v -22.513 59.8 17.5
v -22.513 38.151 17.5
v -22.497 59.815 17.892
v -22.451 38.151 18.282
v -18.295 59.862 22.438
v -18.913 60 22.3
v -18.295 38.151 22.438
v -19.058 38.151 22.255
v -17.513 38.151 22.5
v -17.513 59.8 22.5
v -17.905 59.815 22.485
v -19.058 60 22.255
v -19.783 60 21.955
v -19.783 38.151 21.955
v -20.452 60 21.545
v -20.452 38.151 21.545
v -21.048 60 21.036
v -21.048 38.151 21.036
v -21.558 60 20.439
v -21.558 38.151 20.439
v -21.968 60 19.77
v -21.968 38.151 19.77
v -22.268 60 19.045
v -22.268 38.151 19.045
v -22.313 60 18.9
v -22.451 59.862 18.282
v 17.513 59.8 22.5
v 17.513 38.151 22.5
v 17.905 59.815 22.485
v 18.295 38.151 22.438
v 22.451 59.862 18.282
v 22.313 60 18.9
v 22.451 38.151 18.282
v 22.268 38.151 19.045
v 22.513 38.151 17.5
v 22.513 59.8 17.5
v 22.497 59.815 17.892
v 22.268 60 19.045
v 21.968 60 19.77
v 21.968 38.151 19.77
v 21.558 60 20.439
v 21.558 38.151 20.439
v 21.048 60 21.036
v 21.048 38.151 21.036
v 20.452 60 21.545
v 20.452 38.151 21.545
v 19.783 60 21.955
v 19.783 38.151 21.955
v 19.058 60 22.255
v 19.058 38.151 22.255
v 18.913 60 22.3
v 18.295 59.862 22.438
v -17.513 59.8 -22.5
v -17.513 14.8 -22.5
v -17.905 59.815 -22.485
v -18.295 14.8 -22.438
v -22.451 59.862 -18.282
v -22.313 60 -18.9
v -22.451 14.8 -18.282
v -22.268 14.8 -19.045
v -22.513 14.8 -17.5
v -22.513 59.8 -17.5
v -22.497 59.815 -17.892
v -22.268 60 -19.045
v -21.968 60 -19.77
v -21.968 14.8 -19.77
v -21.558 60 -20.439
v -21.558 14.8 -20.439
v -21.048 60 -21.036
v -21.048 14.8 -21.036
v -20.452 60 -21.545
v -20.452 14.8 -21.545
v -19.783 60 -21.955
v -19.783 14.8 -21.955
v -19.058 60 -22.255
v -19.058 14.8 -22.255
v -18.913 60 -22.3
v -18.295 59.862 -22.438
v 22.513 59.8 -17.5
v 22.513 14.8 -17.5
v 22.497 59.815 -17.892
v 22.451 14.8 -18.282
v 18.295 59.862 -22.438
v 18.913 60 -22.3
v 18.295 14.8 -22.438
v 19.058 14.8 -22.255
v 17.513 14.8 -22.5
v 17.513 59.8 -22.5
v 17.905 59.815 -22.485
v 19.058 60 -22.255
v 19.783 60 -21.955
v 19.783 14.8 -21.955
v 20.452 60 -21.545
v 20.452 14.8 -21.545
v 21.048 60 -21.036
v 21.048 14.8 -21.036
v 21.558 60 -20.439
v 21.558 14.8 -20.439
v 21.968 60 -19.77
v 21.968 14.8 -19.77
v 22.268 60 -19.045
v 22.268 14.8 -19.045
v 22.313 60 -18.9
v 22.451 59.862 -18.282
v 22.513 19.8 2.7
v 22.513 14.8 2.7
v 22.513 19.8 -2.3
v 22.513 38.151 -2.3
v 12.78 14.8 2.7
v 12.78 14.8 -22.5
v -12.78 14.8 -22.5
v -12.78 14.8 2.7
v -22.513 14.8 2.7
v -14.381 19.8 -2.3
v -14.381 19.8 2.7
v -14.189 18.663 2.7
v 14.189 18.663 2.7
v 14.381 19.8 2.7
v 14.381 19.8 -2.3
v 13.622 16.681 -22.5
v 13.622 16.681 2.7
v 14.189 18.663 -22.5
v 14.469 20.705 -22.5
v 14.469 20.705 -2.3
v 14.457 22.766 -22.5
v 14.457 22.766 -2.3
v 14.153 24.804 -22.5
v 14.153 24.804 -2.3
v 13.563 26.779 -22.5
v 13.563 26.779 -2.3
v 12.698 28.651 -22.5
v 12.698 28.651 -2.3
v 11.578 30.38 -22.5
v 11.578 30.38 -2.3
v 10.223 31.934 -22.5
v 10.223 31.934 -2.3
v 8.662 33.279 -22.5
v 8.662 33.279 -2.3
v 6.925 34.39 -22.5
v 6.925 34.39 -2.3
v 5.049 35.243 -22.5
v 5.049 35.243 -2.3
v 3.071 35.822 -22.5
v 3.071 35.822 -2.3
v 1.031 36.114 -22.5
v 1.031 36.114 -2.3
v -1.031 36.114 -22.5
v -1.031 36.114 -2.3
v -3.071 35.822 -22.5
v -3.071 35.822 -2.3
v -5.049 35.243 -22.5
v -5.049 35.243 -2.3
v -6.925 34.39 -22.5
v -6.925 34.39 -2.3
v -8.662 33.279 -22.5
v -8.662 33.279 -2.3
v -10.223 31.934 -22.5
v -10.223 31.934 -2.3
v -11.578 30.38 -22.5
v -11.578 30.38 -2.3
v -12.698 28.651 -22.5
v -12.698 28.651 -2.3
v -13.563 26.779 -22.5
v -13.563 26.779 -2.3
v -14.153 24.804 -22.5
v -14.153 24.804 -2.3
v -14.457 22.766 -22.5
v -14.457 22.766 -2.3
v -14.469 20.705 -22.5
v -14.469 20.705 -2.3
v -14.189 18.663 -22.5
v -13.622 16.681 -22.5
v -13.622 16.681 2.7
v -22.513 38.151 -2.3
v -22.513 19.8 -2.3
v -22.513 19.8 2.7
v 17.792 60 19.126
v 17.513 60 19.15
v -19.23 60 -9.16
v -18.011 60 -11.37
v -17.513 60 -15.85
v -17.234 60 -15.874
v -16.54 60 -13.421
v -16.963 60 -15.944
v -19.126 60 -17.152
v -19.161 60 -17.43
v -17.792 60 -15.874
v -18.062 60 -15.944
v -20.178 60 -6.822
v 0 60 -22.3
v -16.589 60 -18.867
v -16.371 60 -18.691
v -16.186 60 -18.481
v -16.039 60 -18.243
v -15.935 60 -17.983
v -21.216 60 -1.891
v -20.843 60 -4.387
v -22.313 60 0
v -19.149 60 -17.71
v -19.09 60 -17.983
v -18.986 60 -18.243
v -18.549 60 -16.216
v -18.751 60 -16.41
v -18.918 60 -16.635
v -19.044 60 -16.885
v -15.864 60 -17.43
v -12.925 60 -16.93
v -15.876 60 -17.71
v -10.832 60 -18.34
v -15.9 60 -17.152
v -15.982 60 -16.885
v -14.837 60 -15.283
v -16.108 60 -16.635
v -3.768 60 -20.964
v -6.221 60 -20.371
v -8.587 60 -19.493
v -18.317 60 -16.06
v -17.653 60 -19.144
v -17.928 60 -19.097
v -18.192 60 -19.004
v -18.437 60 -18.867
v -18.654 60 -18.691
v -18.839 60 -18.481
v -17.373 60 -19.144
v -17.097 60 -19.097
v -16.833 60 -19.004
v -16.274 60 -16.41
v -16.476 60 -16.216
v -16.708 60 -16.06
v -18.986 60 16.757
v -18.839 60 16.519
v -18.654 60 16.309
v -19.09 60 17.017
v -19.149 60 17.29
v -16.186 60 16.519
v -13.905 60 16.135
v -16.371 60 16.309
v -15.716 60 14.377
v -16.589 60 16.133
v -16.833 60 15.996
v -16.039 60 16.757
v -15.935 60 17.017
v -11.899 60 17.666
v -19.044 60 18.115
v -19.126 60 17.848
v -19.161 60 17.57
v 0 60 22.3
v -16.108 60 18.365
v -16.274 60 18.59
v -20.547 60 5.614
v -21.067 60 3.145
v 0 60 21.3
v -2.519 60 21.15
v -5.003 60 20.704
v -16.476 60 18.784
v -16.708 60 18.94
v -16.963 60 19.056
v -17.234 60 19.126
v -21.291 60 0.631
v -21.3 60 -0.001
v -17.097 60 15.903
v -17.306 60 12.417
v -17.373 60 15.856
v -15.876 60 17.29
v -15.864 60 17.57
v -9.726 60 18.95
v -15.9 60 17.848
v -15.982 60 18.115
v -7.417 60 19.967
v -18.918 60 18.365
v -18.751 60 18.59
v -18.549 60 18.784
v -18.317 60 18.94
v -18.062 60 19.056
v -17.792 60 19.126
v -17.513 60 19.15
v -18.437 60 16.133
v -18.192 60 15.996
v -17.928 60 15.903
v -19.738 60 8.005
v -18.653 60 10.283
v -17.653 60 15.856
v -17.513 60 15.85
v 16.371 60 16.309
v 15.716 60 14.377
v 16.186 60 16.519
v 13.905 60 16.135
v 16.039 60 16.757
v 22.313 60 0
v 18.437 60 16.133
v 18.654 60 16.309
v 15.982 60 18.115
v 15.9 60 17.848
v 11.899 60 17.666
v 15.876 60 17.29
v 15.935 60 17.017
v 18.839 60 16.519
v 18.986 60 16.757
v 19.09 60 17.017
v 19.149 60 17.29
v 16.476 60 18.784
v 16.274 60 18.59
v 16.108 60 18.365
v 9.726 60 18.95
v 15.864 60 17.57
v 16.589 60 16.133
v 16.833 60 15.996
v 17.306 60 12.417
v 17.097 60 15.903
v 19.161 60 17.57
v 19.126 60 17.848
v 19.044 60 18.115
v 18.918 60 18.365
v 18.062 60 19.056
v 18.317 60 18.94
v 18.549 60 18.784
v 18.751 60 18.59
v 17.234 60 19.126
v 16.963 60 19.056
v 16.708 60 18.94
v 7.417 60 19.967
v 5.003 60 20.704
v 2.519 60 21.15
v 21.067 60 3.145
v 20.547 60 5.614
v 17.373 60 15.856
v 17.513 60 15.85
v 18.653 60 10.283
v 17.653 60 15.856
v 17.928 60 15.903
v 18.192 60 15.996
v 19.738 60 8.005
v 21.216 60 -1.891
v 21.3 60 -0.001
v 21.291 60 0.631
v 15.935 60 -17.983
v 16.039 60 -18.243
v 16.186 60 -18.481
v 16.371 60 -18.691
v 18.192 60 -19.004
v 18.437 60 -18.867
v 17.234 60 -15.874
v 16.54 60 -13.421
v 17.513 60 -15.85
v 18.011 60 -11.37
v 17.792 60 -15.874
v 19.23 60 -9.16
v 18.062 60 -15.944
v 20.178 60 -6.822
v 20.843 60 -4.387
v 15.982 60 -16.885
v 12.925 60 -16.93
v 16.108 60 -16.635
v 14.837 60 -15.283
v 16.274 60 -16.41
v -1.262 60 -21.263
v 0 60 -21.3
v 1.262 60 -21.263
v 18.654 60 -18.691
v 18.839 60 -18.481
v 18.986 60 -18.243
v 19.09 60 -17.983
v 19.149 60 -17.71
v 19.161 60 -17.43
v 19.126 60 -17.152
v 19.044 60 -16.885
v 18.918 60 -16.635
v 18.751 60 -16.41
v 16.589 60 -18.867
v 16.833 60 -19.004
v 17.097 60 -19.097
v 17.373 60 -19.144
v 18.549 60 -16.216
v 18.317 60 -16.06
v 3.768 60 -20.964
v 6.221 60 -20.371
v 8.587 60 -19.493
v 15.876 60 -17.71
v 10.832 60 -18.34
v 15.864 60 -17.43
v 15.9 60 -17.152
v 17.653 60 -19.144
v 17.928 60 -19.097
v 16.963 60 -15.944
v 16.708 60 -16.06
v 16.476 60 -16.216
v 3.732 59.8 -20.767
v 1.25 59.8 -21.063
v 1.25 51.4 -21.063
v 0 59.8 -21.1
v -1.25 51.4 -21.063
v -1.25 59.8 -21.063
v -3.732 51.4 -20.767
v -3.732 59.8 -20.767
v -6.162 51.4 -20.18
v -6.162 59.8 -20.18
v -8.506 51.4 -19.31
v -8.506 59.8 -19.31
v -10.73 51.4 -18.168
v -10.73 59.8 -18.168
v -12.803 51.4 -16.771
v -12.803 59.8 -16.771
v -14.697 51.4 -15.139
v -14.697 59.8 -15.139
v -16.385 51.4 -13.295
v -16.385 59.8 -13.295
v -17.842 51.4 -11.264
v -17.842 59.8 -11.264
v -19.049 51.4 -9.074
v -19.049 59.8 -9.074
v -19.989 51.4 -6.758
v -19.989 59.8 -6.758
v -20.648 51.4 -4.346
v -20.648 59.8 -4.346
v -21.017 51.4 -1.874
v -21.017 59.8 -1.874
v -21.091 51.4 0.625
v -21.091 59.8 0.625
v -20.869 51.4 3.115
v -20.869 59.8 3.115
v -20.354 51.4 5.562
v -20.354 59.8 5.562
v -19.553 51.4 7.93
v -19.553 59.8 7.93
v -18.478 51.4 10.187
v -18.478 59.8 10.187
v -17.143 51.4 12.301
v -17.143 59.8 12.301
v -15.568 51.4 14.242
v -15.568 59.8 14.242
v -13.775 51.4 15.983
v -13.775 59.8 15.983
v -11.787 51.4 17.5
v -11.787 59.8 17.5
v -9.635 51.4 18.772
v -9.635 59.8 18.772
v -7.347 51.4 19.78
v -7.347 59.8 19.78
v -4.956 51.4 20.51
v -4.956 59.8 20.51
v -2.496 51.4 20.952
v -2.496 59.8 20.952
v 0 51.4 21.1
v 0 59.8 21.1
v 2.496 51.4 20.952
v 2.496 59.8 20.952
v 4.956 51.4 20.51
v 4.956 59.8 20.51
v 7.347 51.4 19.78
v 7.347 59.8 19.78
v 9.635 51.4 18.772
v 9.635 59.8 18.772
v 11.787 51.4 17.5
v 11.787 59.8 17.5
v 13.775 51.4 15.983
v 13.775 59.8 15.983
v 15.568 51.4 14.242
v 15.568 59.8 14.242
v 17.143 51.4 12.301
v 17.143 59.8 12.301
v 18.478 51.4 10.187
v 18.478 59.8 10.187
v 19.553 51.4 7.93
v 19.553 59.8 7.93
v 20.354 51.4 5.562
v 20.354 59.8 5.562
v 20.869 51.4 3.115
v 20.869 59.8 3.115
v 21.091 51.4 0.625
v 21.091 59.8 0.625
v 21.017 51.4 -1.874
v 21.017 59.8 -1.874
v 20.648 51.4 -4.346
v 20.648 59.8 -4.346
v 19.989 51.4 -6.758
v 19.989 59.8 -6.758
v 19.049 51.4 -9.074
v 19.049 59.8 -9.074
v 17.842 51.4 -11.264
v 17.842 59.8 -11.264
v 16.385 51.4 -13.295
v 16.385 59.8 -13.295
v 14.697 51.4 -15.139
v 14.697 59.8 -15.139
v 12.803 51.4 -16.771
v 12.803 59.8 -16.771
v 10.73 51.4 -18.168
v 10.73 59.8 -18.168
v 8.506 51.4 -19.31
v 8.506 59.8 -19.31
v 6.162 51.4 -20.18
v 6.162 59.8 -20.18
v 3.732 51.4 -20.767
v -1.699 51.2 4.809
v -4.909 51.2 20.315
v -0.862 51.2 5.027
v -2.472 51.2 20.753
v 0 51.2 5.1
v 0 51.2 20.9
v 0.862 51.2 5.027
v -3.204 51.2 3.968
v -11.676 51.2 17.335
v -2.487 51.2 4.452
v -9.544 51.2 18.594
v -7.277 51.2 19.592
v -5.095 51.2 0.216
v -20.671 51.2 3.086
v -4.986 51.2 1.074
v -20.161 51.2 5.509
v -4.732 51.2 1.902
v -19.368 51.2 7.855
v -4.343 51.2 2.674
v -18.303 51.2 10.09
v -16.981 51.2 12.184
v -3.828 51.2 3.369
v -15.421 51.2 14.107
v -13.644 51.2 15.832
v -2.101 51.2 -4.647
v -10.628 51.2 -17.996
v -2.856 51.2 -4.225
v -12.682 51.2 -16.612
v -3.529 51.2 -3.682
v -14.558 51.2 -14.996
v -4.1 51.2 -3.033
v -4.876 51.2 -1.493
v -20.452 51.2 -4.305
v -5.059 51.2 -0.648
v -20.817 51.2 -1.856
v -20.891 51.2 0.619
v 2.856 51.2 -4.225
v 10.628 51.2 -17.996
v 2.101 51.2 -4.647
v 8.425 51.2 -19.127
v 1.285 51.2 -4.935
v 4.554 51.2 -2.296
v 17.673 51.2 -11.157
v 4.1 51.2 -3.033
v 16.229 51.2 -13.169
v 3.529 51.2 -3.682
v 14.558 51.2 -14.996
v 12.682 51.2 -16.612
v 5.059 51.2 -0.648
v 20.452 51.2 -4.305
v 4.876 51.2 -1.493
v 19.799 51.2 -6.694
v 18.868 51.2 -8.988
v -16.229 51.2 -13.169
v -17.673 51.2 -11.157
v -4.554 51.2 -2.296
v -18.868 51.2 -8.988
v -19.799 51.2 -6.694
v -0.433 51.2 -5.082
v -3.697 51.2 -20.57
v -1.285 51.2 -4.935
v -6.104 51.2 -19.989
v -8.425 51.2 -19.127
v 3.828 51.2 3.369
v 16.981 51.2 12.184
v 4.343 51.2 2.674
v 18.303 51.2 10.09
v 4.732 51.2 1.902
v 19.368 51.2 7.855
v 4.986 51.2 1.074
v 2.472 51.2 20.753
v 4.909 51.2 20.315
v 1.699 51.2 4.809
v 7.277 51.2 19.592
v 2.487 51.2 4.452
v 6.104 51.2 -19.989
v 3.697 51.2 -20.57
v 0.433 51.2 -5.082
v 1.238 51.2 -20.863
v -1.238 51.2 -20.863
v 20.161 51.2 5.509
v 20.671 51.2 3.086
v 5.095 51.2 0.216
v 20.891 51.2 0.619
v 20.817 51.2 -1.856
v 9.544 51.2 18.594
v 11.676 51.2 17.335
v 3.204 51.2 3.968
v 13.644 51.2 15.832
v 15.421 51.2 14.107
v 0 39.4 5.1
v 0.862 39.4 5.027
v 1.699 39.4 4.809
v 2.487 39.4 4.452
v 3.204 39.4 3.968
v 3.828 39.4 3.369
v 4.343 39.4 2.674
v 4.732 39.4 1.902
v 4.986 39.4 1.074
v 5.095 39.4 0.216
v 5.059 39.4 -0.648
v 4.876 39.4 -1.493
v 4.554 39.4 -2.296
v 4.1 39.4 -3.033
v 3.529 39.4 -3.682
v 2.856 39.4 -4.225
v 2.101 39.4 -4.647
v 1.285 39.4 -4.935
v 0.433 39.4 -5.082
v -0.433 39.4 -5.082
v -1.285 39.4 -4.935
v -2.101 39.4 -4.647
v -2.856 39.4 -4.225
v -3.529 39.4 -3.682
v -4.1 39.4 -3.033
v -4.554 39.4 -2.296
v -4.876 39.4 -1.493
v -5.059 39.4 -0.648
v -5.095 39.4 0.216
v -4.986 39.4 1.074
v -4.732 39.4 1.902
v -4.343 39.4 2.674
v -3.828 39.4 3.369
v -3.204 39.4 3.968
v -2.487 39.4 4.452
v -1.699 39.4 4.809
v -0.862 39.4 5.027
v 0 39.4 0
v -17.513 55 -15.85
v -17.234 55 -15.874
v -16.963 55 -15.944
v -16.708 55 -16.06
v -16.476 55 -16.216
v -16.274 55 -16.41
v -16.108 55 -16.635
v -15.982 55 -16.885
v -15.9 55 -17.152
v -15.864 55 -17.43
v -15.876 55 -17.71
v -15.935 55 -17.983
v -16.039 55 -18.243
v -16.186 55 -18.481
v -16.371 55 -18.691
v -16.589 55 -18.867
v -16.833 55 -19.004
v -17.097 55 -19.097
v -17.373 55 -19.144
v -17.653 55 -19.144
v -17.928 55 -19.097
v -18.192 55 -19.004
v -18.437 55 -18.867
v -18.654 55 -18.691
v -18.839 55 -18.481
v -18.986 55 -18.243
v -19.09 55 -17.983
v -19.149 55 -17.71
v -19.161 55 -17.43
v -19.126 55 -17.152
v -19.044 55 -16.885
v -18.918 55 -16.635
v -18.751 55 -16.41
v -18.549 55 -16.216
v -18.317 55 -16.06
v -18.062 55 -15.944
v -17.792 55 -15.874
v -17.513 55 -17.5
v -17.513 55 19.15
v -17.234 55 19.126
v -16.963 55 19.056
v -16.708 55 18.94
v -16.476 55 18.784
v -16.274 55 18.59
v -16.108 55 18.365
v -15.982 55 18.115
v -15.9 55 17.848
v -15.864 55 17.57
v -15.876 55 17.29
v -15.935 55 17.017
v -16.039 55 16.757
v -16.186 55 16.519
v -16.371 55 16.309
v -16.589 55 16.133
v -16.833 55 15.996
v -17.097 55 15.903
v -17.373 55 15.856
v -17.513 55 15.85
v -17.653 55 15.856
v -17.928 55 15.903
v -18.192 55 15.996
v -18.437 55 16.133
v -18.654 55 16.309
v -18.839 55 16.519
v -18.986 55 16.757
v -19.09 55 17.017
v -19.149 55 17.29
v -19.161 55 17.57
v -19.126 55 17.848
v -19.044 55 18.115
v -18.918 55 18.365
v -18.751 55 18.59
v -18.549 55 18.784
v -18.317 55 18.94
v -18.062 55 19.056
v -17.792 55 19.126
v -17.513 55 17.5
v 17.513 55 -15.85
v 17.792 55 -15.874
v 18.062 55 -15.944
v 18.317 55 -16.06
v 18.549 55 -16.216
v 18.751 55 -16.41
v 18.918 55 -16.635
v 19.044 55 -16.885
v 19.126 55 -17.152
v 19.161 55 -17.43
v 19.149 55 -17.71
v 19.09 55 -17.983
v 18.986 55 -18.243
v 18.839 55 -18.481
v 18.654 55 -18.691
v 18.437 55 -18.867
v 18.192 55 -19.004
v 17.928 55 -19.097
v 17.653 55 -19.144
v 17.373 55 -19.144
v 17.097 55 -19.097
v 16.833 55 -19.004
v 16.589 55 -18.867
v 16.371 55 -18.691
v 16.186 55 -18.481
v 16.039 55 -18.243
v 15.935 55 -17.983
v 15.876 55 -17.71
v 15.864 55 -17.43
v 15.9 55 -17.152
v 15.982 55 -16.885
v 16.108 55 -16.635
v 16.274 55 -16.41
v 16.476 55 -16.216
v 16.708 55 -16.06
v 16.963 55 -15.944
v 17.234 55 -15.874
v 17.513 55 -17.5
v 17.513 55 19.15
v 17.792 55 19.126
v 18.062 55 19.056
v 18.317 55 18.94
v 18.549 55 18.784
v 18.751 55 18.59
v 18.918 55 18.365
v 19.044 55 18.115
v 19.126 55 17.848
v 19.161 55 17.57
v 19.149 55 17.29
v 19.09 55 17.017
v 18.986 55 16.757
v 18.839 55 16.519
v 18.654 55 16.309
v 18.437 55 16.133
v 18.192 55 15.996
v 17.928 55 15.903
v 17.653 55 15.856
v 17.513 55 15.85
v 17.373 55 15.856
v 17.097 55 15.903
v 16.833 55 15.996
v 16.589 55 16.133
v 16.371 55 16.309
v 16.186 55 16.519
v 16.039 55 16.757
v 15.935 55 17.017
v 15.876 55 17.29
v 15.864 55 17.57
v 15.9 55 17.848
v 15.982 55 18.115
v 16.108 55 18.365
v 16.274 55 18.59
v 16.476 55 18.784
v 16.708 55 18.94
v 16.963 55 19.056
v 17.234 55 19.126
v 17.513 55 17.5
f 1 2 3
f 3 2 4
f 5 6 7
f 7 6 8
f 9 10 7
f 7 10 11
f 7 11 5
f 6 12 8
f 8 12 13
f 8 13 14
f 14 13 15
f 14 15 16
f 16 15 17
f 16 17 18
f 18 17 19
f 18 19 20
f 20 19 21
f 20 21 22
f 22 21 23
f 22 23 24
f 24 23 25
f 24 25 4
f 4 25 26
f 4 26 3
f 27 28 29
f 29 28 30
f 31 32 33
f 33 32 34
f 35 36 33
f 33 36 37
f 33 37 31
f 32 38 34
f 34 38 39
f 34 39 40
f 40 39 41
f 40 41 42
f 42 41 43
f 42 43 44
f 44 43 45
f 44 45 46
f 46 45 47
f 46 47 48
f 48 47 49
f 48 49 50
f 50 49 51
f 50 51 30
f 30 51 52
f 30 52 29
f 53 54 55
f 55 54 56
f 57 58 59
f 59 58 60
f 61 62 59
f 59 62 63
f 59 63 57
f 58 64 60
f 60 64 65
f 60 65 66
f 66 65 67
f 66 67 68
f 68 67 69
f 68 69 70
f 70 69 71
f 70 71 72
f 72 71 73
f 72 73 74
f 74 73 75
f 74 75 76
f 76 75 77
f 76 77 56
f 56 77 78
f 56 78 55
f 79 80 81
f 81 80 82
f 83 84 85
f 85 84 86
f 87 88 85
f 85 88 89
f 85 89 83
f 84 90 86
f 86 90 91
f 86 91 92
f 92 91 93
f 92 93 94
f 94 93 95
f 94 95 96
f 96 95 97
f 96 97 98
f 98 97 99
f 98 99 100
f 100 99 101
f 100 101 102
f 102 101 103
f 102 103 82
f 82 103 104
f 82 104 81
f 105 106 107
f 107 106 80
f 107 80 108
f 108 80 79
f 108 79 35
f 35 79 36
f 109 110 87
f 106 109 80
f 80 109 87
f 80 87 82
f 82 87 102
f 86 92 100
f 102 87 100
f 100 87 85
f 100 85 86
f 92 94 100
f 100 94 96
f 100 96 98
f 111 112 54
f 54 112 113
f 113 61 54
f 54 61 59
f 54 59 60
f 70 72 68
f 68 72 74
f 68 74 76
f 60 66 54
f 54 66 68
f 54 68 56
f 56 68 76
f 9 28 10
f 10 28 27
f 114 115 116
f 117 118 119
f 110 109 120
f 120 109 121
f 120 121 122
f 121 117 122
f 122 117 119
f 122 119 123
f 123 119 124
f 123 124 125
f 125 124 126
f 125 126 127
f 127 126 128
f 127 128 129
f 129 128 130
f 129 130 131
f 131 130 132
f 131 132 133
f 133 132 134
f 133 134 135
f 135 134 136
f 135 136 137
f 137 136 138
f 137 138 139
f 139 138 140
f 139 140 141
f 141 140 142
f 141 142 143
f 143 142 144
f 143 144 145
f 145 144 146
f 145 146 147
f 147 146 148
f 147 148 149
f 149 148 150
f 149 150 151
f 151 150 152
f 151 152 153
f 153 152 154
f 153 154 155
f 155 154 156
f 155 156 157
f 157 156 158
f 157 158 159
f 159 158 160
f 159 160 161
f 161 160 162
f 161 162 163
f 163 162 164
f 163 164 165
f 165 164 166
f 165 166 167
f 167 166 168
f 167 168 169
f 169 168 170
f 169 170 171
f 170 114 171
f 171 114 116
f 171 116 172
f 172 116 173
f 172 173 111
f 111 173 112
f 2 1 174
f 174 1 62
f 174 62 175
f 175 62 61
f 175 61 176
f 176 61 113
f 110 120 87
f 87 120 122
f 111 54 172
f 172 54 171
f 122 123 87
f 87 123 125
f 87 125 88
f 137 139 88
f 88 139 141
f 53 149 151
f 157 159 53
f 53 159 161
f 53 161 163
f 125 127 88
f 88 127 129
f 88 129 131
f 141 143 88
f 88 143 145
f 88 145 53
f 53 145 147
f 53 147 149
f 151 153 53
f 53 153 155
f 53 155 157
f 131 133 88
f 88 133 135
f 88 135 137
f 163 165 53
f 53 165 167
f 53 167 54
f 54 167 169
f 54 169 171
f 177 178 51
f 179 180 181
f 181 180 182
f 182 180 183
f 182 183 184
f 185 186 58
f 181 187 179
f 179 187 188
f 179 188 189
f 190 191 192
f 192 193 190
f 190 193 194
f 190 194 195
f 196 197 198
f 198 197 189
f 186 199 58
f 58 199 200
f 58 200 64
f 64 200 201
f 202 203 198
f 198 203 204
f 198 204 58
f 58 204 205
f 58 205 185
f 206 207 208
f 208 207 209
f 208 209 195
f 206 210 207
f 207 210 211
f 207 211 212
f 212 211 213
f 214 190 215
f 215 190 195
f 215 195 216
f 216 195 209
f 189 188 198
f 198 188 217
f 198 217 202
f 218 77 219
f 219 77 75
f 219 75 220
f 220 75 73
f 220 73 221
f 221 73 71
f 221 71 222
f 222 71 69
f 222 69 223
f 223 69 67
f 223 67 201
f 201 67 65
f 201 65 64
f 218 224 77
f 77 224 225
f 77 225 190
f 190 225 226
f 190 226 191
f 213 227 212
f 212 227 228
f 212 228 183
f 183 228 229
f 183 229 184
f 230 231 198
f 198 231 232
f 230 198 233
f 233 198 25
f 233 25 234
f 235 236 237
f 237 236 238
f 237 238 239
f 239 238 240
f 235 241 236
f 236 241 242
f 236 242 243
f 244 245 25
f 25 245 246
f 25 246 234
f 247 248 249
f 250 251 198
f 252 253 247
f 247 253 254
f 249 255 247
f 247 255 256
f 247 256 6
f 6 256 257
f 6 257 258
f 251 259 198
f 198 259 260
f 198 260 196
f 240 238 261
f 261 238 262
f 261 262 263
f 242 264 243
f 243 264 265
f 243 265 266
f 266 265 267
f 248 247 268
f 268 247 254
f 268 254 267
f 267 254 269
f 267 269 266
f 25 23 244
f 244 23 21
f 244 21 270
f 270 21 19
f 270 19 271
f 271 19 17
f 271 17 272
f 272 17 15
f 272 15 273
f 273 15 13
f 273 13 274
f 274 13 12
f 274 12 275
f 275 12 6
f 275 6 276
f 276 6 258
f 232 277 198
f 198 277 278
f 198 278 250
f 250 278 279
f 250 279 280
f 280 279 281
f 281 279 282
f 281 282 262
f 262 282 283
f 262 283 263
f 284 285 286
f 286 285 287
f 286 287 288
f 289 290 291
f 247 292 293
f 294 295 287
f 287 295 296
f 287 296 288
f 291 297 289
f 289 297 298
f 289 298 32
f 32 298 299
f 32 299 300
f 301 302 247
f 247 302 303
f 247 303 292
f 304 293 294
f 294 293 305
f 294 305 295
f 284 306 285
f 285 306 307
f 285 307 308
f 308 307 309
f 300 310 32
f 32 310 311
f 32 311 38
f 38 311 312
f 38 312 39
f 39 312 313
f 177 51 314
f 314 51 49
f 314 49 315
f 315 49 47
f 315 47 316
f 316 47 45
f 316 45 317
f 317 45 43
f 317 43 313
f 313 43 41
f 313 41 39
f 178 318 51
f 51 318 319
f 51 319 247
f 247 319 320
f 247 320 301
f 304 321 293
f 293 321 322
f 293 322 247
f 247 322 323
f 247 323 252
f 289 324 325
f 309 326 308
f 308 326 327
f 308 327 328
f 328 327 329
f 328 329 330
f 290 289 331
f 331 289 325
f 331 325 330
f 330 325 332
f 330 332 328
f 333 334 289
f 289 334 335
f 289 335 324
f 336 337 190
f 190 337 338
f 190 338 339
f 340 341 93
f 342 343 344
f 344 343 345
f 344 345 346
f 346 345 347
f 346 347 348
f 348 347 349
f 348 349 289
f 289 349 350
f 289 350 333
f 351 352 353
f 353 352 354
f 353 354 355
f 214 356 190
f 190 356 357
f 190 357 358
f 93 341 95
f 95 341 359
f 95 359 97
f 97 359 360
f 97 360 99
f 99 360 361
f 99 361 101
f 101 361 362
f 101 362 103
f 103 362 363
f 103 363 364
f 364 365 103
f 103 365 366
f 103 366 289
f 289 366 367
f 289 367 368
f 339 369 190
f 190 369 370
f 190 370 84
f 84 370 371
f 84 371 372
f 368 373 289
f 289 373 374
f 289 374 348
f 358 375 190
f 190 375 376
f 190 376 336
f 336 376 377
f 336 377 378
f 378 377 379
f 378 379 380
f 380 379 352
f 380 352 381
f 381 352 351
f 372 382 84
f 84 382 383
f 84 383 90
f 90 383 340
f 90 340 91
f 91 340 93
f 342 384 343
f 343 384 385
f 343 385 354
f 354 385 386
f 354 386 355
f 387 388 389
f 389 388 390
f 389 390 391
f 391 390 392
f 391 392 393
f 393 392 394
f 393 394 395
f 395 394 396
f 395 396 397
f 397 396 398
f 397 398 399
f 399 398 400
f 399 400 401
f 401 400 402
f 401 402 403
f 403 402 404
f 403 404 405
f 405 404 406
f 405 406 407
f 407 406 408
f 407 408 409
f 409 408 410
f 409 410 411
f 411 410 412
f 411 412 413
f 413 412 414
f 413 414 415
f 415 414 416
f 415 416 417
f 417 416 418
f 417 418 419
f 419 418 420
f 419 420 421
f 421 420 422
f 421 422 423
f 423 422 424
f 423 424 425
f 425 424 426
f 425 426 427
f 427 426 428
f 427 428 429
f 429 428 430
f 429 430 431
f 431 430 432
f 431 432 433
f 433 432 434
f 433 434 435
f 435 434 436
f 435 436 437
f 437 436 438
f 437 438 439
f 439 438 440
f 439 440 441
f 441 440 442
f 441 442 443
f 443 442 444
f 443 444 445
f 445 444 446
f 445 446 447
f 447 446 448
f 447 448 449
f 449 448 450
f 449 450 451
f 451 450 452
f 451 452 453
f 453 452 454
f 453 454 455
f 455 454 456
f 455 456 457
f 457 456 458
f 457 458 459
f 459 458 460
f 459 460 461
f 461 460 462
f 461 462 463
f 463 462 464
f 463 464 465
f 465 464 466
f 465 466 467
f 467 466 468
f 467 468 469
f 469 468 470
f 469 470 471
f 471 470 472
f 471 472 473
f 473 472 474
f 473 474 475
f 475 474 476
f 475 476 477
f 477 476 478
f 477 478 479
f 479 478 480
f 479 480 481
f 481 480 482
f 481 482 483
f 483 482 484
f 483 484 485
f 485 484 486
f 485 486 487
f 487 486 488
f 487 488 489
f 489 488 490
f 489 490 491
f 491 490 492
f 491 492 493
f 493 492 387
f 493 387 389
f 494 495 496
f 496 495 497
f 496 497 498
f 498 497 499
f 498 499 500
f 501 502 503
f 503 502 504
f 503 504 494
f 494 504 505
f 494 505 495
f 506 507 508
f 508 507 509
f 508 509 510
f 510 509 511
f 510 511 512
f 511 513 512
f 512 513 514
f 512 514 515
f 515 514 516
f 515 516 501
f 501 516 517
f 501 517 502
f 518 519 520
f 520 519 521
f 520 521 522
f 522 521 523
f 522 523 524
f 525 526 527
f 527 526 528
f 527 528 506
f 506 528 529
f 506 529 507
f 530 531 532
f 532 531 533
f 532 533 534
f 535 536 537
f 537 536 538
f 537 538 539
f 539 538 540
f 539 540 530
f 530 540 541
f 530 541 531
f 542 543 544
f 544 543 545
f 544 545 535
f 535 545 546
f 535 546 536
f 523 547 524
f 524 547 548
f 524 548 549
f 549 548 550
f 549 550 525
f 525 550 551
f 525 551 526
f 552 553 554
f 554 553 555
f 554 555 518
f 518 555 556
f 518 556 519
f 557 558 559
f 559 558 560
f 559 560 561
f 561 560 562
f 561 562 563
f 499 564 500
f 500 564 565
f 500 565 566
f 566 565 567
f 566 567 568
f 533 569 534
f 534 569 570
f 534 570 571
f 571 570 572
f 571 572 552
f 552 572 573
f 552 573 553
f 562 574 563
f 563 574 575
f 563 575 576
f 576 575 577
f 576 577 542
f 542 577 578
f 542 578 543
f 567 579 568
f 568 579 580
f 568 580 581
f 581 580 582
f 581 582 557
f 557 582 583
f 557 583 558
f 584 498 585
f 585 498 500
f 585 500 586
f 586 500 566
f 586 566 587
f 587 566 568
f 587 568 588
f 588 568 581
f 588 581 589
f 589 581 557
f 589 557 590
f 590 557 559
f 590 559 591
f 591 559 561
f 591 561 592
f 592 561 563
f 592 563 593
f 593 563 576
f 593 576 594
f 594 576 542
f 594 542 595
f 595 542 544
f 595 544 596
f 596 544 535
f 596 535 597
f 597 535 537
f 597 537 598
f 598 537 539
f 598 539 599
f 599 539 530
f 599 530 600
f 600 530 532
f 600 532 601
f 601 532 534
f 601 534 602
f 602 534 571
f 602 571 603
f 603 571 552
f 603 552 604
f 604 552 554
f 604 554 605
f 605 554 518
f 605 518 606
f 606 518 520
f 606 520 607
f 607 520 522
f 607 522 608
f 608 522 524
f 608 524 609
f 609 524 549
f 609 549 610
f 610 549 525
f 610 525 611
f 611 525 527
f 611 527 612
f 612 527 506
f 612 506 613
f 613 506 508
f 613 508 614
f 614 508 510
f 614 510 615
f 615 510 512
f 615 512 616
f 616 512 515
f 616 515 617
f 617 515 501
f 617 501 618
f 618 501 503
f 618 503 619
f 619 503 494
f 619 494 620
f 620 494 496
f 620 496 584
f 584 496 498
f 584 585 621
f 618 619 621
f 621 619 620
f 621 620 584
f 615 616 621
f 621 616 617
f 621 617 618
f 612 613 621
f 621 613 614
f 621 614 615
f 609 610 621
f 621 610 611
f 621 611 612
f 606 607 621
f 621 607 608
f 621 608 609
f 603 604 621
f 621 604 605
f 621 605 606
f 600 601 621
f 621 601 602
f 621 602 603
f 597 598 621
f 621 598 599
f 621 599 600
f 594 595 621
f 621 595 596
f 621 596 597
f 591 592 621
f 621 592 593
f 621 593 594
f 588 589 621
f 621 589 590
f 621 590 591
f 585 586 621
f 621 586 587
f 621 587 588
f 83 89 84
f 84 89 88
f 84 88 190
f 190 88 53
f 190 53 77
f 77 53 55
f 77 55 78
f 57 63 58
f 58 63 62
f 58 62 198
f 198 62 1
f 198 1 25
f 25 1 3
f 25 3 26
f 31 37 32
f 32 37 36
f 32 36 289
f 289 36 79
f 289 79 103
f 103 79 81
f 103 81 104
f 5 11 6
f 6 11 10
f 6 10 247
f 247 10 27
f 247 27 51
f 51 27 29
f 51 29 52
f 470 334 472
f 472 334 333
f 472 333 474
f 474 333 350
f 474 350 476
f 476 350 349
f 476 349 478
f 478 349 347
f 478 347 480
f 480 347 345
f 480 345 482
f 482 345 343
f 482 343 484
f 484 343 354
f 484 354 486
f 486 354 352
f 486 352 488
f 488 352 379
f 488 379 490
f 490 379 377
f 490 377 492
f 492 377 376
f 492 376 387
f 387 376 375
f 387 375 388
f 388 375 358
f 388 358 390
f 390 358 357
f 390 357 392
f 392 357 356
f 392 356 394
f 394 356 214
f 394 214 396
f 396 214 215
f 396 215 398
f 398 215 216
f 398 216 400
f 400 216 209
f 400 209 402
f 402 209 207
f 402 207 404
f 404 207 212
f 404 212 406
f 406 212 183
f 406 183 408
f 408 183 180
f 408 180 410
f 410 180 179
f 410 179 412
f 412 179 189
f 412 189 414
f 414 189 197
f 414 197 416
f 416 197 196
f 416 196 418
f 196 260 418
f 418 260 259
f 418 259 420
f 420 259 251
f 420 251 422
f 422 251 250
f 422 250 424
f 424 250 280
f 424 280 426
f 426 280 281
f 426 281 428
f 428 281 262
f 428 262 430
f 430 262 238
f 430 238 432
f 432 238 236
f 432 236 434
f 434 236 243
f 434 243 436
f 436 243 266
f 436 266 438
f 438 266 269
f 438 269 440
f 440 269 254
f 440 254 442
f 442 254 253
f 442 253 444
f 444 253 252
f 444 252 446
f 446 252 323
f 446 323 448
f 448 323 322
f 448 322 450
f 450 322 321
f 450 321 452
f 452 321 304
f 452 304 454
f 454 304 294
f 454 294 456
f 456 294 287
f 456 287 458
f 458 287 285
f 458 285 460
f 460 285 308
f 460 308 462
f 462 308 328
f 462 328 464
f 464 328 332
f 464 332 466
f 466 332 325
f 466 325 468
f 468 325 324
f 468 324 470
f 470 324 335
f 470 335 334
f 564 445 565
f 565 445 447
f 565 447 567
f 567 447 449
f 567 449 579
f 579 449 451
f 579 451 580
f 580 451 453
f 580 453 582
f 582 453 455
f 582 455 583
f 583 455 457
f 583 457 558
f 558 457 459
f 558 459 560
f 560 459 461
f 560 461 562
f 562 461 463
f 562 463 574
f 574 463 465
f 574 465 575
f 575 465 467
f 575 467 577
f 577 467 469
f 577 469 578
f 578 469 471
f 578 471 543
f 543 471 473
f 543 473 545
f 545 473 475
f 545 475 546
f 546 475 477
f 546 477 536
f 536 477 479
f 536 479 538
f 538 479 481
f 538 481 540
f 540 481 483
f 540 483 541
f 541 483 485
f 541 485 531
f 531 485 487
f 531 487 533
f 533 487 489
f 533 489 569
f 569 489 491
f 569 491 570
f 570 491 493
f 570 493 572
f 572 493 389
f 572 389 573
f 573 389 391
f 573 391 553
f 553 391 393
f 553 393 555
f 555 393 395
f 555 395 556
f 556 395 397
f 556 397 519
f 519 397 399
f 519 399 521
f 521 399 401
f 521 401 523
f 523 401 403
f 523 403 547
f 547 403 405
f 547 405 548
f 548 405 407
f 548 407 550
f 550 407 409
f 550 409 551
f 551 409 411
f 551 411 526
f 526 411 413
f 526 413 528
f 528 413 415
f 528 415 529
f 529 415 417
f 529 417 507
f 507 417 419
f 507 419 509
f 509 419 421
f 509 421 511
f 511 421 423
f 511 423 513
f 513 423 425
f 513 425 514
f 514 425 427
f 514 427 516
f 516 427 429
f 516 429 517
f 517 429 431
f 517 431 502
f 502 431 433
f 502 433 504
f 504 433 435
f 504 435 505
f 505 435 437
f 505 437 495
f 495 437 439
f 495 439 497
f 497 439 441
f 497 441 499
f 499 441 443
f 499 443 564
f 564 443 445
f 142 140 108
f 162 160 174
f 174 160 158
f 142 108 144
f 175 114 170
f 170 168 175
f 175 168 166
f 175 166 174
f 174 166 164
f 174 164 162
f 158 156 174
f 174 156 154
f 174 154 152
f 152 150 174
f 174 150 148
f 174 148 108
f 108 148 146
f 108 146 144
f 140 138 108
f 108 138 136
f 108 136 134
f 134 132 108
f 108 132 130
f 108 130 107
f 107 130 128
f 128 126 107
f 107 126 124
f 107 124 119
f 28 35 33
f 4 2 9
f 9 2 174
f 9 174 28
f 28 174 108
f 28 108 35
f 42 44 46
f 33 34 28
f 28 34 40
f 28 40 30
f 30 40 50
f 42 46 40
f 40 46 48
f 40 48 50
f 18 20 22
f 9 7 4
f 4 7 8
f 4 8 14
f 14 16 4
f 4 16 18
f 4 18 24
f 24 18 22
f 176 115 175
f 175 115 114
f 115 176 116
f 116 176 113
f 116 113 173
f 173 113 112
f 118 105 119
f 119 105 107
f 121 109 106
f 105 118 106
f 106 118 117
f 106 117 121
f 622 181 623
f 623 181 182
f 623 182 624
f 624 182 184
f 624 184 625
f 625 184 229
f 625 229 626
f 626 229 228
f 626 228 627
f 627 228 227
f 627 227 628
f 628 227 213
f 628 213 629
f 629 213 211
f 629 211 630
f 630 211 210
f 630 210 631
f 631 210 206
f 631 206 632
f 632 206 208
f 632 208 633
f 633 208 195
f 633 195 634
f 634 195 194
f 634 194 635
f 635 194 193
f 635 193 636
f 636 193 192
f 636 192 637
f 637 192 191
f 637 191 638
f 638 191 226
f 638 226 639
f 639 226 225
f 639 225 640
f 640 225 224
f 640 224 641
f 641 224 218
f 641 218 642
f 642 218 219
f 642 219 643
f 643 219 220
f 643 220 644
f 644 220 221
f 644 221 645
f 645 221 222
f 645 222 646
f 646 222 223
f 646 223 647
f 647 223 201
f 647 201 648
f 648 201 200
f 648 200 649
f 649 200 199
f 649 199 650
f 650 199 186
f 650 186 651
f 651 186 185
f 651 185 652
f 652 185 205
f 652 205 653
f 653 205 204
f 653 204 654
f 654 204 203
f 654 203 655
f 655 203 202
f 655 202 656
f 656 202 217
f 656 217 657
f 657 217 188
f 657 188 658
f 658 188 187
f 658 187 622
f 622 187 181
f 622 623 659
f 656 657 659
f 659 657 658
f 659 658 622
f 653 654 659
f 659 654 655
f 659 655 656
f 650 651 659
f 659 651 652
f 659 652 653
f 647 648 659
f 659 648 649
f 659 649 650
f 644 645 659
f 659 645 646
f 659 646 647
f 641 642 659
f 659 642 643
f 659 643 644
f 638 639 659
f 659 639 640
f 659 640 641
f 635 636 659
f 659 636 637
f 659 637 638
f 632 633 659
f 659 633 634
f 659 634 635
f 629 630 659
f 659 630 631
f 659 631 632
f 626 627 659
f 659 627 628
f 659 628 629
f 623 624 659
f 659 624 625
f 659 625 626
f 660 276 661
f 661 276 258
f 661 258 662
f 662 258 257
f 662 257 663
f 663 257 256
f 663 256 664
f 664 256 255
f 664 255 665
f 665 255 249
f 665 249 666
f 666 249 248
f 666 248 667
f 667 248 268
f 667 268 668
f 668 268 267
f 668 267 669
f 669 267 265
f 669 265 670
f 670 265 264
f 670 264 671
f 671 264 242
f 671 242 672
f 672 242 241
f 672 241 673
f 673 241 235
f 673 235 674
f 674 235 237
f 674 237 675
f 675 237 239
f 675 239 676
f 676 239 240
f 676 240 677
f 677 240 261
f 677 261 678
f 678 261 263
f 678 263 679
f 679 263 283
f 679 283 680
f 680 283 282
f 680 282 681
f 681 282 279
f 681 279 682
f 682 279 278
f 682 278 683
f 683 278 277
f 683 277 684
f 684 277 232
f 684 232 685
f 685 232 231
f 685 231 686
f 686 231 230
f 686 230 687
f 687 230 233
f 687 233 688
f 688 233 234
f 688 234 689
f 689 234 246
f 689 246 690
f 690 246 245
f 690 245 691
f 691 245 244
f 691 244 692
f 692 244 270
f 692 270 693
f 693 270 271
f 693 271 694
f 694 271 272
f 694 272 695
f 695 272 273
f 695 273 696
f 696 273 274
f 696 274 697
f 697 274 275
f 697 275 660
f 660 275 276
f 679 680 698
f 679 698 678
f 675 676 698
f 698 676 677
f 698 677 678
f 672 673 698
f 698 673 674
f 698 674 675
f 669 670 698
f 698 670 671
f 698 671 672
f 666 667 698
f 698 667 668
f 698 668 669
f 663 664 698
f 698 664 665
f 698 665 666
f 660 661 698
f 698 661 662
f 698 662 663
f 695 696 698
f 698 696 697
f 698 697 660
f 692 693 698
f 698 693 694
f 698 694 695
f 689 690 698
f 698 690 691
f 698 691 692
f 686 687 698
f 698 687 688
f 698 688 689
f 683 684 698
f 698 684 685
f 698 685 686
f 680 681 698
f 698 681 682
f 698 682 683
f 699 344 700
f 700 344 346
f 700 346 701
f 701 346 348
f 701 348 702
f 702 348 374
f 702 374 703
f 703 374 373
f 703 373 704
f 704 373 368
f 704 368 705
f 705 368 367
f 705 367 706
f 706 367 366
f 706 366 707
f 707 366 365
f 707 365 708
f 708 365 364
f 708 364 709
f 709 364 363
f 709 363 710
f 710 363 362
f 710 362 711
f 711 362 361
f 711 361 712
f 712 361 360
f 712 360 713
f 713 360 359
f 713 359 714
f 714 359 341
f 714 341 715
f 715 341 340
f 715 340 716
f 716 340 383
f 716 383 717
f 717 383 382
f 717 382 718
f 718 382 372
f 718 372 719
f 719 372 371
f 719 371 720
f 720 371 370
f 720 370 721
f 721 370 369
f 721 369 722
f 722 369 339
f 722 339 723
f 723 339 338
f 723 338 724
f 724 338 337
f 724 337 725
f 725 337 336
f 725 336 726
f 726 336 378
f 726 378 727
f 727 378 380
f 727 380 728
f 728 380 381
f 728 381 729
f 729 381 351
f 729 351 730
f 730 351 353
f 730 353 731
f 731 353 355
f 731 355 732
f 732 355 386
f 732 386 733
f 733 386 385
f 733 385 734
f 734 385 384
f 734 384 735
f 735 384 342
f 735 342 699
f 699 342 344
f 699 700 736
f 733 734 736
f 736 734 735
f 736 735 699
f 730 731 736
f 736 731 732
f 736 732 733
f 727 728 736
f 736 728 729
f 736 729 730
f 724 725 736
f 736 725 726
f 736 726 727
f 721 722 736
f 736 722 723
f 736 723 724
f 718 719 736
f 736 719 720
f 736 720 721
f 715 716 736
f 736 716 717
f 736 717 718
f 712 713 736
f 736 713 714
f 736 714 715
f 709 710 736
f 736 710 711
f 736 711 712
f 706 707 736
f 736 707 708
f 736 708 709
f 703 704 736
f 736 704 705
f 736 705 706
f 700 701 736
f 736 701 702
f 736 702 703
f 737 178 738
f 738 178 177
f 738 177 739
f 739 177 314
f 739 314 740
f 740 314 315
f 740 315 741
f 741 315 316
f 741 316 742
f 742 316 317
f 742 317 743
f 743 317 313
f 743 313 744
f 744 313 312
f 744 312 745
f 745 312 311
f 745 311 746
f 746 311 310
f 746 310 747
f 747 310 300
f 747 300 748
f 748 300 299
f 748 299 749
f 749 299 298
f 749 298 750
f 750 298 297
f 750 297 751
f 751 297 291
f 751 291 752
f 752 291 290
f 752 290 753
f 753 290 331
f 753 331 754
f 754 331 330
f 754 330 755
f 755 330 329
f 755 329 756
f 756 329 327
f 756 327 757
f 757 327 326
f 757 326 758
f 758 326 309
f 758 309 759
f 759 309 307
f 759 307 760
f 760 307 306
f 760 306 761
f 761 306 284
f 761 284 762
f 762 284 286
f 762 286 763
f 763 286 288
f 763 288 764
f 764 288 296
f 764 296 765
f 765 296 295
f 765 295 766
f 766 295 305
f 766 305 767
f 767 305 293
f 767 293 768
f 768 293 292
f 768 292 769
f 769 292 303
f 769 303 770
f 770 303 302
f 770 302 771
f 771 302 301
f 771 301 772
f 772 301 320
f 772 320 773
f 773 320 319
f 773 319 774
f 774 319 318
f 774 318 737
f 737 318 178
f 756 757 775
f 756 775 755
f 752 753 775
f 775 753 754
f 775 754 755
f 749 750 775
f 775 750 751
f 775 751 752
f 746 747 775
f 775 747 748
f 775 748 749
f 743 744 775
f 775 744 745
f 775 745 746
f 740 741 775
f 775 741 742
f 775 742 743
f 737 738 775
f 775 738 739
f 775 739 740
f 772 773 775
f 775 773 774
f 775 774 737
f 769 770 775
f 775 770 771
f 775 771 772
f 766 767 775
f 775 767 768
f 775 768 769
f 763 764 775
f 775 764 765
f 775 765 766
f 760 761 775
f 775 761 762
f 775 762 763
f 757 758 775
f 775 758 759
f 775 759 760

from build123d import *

# Parameters (mm, degrees)
SKETCH1_W                                  = 45.025374044
SKETCH1_H                                  = 45
BOSS_EXTRUDE1_DEPTH                        = 60
SKETCH2_R                                  = 21.1
CUT_EXTRUDE1_DEPTH                         = 8.8
SKETCH3_R                                  = 5.1
CUT_EXTRUDE2_DEPTH                         = 11.8
CHAMFER1_SIZE                              = 0.2
SKETCH4_R                                  = 14.5
CUT_EXTRUDE3_DEPTH                         = 79.305945349
SKETCH5_W                                  = 45.025374044
SKETCH5_H                                  = 45
CUT_EXTRUDE4_DEPTH                         = 14.8
SKETCH6_W                                  = 45.025374044
SKETCH6_H                                  = 23.350654293
CUT_EXTRUDE5_DEPTH                         = 24.8
FILLET3_R                                  = 5
FILLET4_R                                  = 5
FILLET7_R                                  = 5
FILLET8_R                                  = 5
BOSS_EXTRUDE3_START                        = 5
BOSS_EXTRUDE3_DEPTH                        = 5
SKETCH9_R                                  = 1.65
CUT_EXTRUDE6_DEPTH                         = 5
MIRROR2_AT_THE_SECOND_PLANE_COPY_1_SKETC_R = 1.65
MIRROR2_AT_THE_SECOND_PLANE_COPY_1_DEPTH   = 5


with BuildPart() as part:
    # Sketch1 → Boss-Extrude1 (new body)
    with BuildSketch(Plane(origin=(0, 0, 0), x_dir=(1, 0, 0), z_dir=(0, 1, 0))):
        Rectangle(SKETCH1_W, SKETCH1_H)
    extrude(amount=BOSS_EXTRUDE1_DEPTH)

    # Sketch2 → Cut-Extrude1 (cut)
    with BuildSketch(Plane(origin=(0, 60, 0), x_dir=(1, 0, 0), z_dir=(0, 1, 0))):
        with Locations(Location((0, 0, 0), (0, 0, 270))):
            Circle(SKETCH2_R)
    extrude(amount=-CUT_EXTRUDE1_DEPTH, mode=Mode.SUBTRACT)

    # Sketch3 → Cut-Extrude2 (cut)
    with BuildSketch(Plane(origin=(0, 51.2, 0), x_dir=(1, 0, 0), z_dir=(0, 1, 0))):
        with Locations(Location((0, 0, 0), (0, 0, 270))):
            Circle(SKETCH3_R)
    extrude(amount=-CUT_EXTRUDE2_DEPTH, mode=Mode.SUBTRACT)

    # Chamfer1
    chamfer1_edges = [part.edges().sort_by_distance(p)[0] for p in [
        (-22.512687022, 60, 0),
        (0, 51.2, -21.1),
        (0, 60, -21.1),
        (0, 60, 22.5),
        (22.512687022, 60, 0),
        (0, 60, -22.5),
    ]]
    chamfer(chamfer1_edges, length=CHAMFER1_SIZE)

    # Sketch4 → Cut-Extrude3 (cut, through all)
    with BuildSketch(Plane.XY.offset(22.5)):
        with Locations((0, 21.650654293)):
            Circle(SKETCH4_R)
    extrude(amount=-CUT_EXTRUDE3_DEPTH, mode=Mode.SUBTRACT)

    # Sketch5 → Cut-Extrude4 (cut)
    with BuildSketch(Plane.XZ):
        Rectangle(SKETCH5_W, SKETCH5_H)
    extrude(amount=-CUT_EXTRUDE4_DEPTH, mode=Mode.SUBTRACT)

    # Sketch6 → Cut-Extrude5 (cut)
    with BuildSketch(Plane.XY.offset(22.5)):
        with Locations((0, 26.475327146)):
            Rectangle(SKETCH6_W, SKETCH6_H)
    extrude(amount=-CUT_EXTRUDE5_DEPTH, mode=Mode.SUBTRACT)

    # Fillet3
    # the kernel refuses this fillet: 5 mm, written as the material it takes off along each edge
    with BuildSketch(Plane(origin=(22.512687022, 2.3, -22.5), x_dir=(0, 0, 1), z_dir=(0, 1, 0))) as fillet3_piece_1:
        with BuildLine():
            CenterArc((FILLET3_R, -FILLET3_R), FILLET3_R, 90, 90)
            Line((0, -FILLET3_R), (0, 0))
            Line((0, 0), (FILLET3_R, 0))
        make_face()
    extrude(amount=70, mode=Mode.SUBTRACT)

    # Fillet4
    # the kernel refuses this fillet: 5 mm, written as the material it takes off along each edge
    with BuildSketch(Plane(origin=(-22.512687022, 2.3, -22.5), x_dir=(0, 0, 1), z_dir=(0, 1, 0))) as fillet4_piece_1:
        with BuildLine():
            CenterArc((FILLET4_R, FILLET4_R), FILLET4_R, 180, 90)
            Line((0, FILLET4_R), (0, 0))
            Line((0, 0), (FILLET4_R, 0))
        make_face()
    extrude(amount=70, mode=Mode.SUBTRACT)

    # Fillet7
    # the kernel refuses this fillet: 5 mm, written as the material it takes off along each edge
    with BuildSketch(Plane(origin=(22.512687022, 25.650654293, 22.5), x_dir=(-1, 0, 0), z_dir=(0, 1, 0))) as fillet7_piece_1:
        with BuildLine():
            CenterArc((FILLET7_R, -FILLET7_R), FILLET7_R, 90, 90)
            Line((0, -FILLET7_R), (0, 0))
            Line((0, 0), (FILLET7_R, 0))
        make_face()
    extrude(amount=46.649345707, mode=Mode.SUBTRACT)

    # Fillet8
    # the kernel refuses this fillet: 5 mm, written as the material it takes off along each edge
    with BuildSketch(Plane(origin=(-22.512687022, 25.650654293, 22.5), x_dir=(1, 0, 0), z_dir=(0, 1, 0))) as fillet8_piece_1:
        with BuildLine():
            CenterArc((FILLET8_R, FILLET8_R), FILLET8_R, 180, 90)
            Line((0, FILLET8_R), (0, 0))
            Line((0, 0), (FILLET8_R, 0))
        make_face()
    extrude(amount=46.649345707, mode=Mode.SUBTRACT)

    # Sketch7 → Boss-Extrude3 (add)
    with BuildSketch(Plane.XY.offset(-2.3).offset(BOSS_EXTRUDE3_START)):
        with BuildLine():
            Line((-22.512687022, 14.8), (-12.779614069, 14.8))
            ThreePointArc((-12.779614069, 14.8), (-13.808706174, 17.22689641), (-14.381414349, 19.8))
            Line((-14.381414349, 19.8), (-22.512687022, 19.8))
            Line((-22.512687022, 19.8), (-22.512687022, 14.8))
        make_face()
    boss_extrude3 = extrude(amount=-BOSS_EXTRUDE3_DEPTH)

    # Mirror1: Boss-Extrude3 across plane
    add(boss_extrude3.mirror(Plane(origin=(0, 0, 0), x_dir=(0, 0, 1), z_dir=(1, 0, 0))))

    # Sketch9 → Cut-Extrude6 (cut)
    with BuildSketch(Plane(origin=(0, 60, 0), x_dir=(1, 0, 0), z_dir=(0, 1, 0))):
        with Locations(Location((-17.512687022, 17.5, 0), (0, 0, 270))):
            Circle(SKETCH9_R)
    cut_extrude6 = extrude(amount=-CUT_EXTRUDE6_DEPTH, mode=Mode.SUBTRACT)

    # Mirror2: Cut-Extrude6 across plane
    add(cut_extrude6.mirror(Plane(origin=(0, 0, 0), x_dir=(0, 0, 1), z_dir=(1, 0, 0))), mode=Mode.SUBTRACT)

    # Mirror2 at the second plane: Cut-Extrude6 across plane
    add(cut_extrude6.mirror(Plane.XY), mode=Mode.SUBTRACT)

    # Mirror2 at the second plane copy 1 sketc → Mirror2 at the second plane copy 1 (cut)
    with BuildSketch(Plane(origin=(0, 60, 0), x_dir=(-1, 0, 0), z_dir=(0, 1, 0))):
        with Locations(Location((-17.512687022, 17.5, 0), (0, 0, 270))):
            Circle(MIRROR2_AT_THE_SECOND_PLANE_COPY_1_SKETC_R)
    extrude(amount=-MIRROR2_AT_THE_SECOND_PLANE_COPY_1_DEPTH, mode=Mode.SUBTRACT)


solid = part.part
